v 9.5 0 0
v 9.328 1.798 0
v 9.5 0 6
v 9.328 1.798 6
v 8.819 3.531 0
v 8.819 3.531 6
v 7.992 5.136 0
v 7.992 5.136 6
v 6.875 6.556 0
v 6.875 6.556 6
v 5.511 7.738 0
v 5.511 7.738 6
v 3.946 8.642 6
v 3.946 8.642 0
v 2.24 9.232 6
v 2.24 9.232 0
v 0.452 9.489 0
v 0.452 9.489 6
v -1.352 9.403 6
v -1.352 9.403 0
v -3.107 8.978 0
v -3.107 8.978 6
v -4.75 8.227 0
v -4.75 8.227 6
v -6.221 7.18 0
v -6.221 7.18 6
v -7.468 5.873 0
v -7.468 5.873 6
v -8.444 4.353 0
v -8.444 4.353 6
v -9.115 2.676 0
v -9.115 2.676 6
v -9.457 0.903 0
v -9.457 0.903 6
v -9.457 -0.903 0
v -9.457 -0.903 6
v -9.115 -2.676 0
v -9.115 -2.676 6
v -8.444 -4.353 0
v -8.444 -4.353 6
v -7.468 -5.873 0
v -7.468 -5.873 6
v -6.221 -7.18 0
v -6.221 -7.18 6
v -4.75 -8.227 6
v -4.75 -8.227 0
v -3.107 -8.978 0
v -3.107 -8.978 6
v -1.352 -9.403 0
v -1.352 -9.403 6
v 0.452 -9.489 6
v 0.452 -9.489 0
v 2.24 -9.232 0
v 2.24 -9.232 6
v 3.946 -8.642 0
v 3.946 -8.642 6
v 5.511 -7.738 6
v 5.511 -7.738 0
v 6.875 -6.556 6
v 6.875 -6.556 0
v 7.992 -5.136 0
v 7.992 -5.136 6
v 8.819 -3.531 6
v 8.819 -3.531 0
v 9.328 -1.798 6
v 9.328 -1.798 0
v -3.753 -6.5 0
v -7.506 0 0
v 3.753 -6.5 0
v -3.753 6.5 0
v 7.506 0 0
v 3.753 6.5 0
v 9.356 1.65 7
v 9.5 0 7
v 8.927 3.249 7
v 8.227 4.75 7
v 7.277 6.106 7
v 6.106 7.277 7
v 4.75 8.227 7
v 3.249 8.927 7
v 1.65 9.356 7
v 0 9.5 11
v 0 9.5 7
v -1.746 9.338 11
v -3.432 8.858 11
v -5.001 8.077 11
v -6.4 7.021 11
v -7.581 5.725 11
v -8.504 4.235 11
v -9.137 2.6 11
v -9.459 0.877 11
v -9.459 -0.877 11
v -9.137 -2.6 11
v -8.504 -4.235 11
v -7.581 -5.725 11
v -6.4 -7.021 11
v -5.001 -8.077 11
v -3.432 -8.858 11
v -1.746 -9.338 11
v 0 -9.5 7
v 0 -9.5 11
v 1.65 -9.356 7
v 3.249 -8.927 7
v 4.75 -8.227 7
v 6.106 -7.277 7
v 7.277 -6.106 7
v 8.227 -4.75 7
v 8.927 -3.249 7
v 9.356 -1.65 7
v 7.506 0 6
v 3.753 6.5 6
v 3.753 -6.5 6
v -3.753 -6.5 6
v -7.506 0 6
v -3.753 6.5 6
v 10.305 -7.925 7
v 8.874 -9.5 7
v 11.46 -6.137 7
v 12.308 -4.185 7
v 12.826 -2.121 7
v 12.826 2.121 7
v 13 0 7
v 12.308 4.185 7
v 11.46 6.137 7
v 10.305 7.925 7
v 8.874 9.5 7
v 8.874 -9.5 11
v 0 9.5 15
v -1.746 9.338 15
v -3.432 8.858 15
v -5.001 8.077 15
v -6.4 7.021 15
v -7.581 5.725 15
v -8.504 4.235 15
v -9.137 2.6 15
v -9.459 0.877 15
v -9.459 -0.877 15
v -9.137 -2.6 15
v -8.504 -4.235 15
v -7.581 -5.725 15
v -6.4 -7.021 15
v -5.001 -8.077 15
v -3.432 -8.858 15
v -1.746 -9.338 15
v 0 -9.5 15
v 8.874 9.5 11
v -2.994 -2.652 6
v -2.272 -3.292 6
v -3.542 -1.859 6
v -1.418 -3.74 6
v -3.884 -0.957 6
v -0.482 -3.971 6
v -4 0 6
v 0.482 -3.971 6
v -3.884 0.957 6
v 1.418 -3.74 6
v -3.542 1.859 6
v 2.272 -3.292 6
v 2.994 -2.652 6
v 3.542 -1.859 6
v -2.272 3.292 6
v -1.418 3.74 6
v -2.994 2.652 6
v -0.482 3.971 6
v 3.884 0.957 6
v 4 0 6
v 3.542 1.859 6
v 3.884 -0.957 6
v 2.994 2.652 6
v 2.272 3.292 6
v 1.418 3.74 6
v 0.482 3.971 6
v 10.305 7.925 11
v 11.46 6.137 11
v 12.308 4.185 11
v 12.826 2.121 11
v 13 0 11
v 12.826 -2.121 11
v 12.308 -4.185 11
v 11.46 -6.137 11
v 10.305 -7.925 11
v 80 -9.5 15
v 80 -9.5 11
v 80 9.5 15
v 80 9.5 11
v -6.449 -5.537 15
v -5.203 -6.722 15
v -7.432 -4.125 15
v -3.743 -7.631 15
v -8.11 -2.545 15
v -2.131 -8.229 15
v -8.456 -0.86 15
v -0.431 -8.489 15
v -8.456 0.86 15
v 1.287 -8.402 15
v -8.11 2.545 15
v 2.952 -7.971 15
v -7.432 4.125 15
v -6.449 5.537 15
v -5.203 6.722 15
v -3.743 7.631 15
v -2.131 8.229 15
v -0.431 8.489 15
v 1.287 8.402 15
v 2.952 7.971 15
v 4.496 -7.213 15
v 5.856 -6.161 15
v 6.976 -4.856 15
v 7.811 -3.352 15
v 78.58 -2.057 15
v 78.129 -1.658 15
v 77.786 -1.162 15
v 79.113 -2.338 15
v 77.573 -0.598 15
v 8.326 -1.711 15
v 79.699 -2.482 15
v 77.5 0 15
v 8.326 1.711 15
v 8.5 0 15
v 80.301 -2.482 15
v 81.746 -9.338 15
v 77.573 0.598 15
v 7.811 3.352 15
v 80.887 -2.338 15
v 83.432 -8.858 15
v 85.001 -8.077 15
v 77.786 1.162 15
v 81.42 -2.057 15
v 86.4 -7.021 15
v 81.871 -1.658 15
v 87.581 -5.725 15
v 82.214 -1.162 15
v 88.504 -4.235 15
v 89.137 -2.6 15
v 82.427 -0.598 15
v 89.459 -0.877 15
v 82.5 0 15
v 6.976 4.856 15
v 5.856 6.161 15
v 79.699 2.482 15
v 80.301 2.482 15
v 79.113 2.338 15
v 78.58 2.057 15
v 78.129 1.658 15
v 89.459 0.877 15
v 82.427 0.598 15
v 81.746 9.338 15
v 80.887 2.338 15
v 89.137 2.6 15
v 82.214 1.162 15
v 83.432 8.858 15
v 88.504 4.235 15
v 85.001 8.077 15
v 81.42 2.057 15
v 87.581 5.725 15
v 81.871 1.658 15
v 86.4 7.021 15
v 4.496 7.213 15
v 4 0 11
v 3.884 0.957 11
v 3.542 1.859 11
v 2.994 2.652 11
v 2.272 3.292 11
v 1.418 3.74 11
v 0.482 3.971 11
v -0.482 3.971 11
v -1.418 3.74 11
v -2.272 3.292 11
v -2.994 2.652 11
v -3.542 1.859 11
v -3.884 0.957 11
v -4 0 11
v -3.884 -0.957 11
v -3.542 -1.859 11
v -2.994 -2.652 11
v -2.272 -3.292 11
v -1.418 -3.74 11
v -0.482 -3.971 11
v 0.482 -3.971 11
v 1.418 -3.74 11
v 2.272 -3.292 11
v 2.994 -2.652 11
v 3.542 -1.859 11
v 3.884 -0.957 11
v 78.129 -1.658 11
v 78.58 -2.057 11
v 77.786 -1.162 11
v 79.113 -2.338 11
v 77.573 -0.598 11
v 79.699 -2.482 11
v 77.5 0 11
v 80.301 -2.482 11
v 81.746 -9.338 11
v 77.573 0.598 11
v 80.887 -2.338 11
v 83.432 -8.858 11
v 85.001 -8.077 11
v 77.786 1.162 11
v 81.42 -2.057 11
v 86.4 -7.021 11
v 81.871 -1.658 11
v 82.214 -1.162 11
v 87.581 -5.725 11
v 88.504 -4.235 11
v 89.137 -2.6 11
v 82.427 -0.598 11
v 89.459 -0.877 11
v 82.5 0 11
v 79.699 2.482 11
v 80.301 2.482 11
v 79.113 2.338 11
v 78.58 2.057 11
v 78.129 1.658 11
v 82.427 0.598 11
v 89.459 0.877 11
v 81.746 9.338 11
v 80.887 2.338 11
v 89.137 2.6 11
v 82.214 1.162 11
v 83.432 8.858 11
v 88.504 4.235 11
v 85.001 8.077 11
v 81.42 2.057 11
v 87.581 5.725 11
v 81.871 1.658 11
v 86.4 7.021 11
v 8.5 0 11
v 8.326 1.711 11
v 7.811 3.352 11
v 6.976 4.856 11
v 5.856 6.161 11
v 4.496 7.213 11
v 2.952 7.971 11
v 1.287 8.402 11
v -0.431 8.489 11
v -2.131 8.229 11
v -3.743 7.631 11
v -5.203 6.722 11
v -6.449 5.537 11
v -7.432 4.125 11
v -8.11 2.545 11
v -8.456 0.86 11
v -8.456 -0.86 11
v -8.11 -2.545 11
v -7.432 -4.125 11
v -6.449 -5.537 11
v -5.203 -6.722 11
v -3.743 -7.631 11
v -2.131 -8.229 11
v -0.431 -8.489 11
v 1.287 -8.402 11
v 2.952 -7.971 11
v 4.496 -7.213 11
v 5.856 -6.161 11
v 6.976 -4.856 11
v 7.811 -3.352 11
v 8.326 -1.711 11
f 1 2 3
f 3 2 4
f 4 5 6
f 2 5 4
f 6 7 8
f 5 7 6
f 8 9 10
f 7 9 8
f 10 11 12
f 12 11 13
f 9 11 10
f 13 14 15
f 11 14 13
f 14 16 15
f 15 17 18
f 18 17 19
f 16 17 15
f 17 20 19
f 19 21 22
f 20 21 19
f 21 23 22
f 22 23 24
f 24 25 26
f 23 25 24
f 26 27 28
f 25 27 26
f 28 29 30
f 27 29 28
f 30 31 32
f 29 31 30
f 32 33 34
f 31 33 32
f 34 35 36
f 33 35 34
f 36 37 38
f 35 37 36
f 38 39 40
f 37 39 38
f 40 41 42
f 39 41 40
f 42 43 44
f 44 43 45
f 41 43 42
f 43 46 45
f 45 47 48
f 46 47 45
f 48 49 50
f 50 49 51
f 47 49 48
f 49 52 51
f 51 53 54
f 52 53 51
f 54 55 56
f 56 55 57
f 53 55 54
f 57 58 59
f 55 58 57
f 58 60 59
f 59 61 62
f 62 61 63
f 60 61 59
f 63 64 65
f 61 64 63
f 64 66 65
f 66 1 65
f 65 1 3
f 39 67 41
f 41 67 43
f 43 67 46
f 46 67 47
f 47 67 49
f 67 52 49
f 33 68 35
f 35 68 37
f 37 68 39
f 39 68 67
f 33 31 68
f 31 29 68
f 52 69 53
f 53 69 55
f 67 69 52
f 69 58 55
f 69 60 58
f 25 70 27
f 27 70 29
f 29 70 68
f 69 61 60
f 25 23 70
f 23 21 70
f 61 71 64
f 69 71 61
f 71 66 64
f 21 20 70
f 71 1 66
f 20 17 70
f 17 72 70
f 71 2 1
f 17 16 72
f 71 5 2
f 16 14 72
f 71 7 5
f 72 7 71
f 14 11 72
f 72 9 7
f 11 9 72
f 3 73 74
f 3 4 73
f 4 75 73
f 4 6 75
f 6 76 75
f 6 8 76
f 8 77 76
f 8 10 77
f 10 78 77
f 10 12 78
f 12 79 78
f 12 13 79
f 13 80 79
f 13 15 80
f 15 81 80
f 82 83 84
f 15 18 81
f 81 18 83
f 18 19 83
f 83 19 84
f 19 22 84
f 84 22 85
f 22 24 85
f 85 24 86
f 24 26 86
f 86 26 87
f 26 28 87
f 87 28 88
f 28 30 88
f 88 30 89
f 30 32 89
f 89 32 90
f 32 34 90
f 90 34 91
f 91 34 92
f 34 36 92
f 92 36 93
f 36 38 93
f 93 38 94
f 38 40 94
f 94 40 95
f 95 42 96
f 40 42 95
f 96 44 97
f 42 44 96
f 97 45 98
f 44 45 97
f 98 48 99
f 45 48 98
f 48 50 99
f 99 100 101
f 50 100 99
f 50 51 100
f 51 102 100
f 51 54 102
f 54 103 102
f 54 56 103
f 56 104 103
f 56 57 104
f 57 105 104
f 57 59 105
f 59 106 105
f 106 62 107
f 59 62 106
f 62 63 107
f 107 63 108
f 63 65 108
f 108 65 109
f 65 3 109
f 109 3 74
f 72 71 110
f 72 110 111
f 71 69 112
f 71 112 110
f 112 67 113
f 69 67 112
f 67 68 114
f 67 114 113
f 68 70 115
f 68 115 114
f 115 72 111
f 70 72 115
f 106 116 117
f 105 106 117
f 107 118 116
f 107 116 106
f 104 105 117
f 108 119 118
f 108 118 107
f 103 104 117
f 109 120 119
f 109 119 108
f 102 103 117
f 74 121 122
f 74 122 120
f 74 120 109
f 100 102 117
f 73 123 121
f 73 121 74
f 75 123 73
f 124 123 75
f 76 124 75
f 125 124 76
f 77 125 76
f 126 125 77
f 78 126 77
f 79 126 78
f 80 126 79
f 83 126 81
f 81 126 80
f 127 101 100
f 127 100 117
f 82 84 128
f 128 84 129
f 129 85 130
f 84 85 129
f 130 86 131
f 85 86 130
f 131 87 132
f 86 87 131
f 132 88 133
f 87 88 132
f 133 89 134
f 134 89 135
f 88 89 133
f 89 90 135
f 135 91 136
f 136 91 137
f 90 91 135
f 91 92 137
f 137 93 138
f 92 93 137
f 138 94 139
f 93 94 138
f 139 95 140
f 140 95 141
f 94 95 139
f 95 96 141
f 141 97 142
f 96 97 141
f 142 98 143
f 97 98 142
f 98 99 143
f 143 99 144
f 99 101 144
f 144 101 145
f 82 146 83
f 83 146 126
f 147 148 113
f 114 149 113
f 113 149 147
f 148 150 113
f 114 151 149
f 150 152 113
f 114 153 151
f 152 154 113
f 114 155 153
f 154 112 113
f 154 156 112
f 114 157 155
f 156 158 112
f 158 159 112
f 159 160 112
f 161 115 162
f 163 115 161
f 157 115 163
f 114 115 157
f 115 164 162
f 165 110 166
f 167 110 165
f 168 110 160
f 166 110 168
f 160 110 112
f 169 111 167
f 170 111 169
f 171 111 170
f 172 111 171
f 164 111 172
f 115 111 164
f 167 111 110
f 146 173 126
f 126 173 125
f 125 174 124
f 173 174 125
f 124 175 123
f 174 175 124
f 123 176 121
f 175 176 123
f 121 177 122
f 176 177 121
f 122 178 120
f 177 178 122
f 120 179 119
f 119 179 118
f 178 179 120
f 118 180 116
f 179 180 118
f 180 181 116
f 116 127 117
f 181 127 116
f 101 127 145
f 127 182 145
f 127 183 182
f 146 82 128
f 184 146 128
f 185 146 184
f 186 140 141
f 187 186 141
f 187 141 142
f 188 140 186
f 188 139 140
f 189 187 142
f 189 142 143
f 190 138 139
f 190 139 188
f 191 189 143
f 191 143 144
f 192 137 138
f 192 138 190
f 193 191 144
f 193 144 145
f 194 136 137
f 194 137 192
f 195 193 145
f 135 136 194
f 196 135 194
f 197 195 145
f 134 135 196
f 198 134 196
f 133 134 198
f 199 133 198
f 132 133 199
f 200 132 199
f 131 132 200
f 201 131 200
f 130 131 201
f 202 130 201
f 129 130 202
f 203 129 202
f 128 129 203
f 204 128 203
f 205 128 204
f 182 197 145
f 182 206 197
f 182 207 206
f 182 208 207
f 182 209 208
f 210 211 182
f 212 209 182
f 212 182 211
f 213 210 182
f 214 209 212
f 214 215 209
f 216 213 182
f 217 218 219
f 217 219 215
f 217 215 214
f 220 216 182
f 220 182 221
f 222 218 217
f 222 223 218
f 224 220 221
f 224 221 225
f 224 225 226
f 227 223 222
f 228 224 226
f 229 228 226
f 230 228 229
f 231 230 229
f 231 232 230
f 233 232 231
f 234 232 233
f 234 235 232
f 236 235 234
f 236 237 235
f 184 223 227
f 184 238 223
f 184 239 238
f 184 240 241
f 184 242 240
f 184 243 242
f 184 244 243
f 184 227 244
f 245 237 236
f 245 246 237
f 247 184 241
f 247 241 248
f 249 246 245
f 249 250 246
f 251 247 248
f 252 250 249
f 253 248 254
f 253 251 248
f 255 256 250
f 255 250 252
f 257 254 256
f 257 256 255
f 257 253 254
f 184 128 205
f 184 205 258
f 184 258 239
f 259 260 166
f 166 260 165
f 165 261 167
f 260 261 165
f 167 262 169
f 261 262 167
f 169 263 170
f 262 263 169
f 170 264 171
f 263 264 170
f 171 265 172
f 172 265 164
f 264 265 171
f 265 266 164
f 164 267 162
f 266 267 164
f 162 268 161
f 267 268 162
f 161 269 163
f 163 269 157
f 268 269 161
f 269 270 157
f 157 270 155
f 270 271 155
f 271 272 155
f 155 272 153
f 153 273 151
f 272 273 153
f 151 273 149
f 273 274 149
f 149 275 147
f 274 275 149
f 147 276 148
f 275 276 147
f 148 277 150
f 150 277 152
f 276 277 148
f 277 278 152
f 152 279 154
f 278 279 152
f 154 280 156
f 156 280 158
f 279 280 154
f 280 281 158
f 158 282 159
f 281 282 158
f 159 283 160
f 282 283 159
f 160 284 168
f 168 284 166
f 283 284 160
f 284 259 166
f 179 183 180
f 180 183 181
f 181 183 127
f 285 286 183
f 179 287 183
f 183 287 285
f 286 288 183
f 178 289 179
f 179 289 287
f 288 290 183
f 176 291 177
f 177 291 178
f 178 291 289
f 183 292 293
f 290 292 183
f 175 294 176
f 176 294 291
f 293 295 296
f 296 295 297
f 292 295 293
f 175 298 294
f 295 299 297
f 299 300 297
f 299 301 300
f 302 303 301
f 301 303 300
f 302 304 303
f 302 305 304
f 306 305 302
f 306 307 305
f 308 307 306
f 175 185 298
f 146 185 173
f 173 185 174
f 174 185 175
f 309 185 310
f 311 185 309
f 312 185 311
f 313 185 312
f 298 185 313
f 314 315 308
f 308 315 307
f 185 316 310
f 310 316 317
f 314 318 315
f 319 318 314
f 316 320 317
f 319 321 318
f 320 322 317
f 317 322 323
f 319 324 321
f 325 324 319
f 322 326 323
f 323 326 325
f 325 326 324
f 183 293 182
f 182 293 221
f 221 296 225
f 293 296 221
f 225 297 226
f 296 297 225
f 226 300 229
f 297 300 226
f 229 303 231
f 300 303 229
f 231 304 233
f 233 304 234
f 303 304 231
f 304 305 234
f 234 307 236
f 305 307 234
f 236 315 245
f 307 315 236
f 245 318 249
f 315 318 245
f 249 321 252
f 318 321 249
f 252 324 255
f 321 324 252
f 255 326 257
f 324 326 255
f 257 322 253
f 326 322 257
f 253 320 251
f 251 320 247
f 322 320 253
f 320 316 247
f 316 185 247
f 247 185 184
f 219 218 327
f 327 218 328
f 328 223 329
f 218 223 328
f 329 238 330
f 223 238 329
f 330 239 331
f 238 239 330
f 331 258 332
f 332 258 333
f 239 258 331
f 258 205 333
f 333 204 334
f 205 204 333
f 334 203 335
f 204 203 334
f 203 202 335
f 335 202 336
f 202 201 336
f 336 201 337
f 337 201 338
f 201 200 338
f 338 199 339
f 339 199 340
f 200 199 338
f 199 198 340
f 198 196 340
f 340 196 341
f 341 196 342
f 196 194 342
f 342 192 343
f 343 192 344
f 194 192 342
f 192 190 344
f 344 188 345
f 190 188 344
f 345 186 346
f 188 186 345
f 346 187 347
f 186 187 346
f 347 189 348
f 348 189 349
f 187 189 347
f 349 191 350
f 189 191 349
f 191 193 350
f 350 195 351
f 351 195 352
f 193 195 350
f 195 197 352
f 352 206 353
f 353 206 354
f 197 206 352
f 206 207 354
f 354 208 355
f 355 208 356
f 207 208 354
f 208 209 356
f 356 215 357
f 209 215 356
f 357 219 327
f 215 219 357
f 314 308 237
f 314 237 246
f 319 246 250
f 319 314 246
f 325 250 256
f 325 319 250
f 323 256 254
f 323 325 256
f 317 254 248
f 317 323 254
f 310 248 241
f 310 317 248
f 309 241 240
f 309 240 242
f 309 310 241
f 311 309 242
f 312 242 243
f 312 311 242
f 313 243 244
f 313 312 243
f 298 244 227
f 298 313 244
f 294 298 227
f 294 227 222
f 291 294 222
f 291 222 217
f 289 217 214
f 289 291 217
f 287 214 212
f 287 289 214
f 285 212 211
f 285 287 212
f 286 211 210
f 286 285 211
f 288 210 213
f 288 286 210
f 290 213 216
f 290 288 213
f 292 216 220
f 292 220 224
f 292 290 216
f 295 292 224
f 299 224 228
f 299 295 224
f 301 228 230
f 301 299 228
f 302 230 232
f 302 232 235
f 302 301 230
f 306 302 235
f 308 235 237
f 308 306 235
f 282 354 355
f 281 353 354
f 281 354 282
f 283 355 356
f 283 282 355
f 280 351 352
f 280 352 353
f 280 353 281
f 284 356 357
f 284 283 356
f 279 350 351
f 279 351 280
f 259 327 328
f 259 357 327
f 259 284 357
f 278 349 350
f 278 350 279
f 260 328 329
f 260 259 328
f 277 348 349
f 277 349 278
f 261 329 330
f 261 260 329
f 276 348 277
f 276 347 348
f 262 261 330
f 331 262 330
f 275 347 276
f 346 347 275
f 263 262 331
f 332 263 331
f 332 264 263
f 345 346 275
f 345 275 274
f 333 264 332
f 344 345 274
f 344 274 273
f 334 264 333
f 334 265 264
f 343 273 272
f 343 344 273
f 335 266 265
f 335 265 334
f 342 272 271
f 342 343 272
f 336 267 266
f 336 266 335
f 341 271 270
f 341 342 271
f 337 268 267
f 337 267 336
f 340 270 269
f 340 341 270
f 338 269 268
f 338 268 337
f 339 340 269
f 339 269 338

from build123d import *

# Parameters (mm, degrees)
SKETCH_R        = 9.5
PAD_DEPTH       = 6
SKETCH001_R     = 9.5
PAD001_DEPTH    = 5
SKETCH002_R     = 4
POCKET_DEPTH    = 5
SKETCH003_R     = 2.5
SKETCH003_R_2   = 4
PAD002_DEPTH    = 4
SKETCH004_R     = 8.5
POCKET001_DEPTH = 4
PAD003_DEPTH    = 4


with BuildPart() as part:
    # Sketch → Pad (new body)
    with BuildSketch(Plane.XY):
        Circle(SKETCH_R)
        Polygon((3.752777, 6.5), (-3.752777, 6.5), (-7.505553, 0), (-3.752777, -6.5), (3.752777, -6.5), (7.505553, 0), align=None, mode=Mode.SUBTRACT)
    extrude(amount=PAD_DEPTH)

    # Sketch001 (on Face9 of Pad) → Pad001 (join)
    with BuildSketch(Plane.XY.offset(6)):
        Circle(SKETCH001_R)
    extrude(amount=PAD001_DEPTH)

    # Sketch002 (on Face10 of Pad001) → Pocket (cut)
    with BuildSketch(Plane.XY.offset(11)):
        Circle(SKETCH002_R)
    extrude(amount=-POCKET_DEPTH, mode=Mode.SUBTRACT)

    # Sketch003 (on Face10 of Pocket) → Pad002 (join)
    with BuildSketch(Plane.XY.offset(11)):
        with BuildLine():
            ThreePointArc((0, 9.5), (-9.5, 0), (0, -9.5))
            Line((0, -9.5), (80, -9.5))
            ThreePointArc((80, -9.5), (89.5, 0), (80, 9.5))
            Line((0, 9.5), (80, 9.5))
        make_face()
        with Locations((80, 0)):
            Circle(SKETCH003_R, mode=Mode.SUBTRACT)
        Circle(SKETCH003_R_2, mode=Mode.SUBTRACT)
    extrude(amount=PAD002_DEPTH)

    # Sketch004 (on Face17 of Pad002) → Pocket001 (cut)
    with BuildSketch(Plane.XY.offset(15)):
        Circle(SKETCH004_R)
    extrude(amount=-POCKET001_DEPTH, mode=Mode.SUBTRACT)

    # Sketch005 (on Face10 of Pocket001) → Pad003 (join)
    with BuildSketch(Plane(origin=(0, 0, 11), x_dir=(1, 0, 0), z_dir=(0, 0, -1))):
        with BuildLine():
            ThreePointArc((8.87412, -9.5), (13, 0), (8.87412, 9.5))
            Line((0, 9.5), (8.87412, 9.5))
            ThreePointArc((0, -9.5), (9.5, 0), (0, 9.5))
            Line((0, -9.5), (8.87412, -9.5))
        make_face()
    extrude(amount=PAD003_DEPTH)


solid = part.part
